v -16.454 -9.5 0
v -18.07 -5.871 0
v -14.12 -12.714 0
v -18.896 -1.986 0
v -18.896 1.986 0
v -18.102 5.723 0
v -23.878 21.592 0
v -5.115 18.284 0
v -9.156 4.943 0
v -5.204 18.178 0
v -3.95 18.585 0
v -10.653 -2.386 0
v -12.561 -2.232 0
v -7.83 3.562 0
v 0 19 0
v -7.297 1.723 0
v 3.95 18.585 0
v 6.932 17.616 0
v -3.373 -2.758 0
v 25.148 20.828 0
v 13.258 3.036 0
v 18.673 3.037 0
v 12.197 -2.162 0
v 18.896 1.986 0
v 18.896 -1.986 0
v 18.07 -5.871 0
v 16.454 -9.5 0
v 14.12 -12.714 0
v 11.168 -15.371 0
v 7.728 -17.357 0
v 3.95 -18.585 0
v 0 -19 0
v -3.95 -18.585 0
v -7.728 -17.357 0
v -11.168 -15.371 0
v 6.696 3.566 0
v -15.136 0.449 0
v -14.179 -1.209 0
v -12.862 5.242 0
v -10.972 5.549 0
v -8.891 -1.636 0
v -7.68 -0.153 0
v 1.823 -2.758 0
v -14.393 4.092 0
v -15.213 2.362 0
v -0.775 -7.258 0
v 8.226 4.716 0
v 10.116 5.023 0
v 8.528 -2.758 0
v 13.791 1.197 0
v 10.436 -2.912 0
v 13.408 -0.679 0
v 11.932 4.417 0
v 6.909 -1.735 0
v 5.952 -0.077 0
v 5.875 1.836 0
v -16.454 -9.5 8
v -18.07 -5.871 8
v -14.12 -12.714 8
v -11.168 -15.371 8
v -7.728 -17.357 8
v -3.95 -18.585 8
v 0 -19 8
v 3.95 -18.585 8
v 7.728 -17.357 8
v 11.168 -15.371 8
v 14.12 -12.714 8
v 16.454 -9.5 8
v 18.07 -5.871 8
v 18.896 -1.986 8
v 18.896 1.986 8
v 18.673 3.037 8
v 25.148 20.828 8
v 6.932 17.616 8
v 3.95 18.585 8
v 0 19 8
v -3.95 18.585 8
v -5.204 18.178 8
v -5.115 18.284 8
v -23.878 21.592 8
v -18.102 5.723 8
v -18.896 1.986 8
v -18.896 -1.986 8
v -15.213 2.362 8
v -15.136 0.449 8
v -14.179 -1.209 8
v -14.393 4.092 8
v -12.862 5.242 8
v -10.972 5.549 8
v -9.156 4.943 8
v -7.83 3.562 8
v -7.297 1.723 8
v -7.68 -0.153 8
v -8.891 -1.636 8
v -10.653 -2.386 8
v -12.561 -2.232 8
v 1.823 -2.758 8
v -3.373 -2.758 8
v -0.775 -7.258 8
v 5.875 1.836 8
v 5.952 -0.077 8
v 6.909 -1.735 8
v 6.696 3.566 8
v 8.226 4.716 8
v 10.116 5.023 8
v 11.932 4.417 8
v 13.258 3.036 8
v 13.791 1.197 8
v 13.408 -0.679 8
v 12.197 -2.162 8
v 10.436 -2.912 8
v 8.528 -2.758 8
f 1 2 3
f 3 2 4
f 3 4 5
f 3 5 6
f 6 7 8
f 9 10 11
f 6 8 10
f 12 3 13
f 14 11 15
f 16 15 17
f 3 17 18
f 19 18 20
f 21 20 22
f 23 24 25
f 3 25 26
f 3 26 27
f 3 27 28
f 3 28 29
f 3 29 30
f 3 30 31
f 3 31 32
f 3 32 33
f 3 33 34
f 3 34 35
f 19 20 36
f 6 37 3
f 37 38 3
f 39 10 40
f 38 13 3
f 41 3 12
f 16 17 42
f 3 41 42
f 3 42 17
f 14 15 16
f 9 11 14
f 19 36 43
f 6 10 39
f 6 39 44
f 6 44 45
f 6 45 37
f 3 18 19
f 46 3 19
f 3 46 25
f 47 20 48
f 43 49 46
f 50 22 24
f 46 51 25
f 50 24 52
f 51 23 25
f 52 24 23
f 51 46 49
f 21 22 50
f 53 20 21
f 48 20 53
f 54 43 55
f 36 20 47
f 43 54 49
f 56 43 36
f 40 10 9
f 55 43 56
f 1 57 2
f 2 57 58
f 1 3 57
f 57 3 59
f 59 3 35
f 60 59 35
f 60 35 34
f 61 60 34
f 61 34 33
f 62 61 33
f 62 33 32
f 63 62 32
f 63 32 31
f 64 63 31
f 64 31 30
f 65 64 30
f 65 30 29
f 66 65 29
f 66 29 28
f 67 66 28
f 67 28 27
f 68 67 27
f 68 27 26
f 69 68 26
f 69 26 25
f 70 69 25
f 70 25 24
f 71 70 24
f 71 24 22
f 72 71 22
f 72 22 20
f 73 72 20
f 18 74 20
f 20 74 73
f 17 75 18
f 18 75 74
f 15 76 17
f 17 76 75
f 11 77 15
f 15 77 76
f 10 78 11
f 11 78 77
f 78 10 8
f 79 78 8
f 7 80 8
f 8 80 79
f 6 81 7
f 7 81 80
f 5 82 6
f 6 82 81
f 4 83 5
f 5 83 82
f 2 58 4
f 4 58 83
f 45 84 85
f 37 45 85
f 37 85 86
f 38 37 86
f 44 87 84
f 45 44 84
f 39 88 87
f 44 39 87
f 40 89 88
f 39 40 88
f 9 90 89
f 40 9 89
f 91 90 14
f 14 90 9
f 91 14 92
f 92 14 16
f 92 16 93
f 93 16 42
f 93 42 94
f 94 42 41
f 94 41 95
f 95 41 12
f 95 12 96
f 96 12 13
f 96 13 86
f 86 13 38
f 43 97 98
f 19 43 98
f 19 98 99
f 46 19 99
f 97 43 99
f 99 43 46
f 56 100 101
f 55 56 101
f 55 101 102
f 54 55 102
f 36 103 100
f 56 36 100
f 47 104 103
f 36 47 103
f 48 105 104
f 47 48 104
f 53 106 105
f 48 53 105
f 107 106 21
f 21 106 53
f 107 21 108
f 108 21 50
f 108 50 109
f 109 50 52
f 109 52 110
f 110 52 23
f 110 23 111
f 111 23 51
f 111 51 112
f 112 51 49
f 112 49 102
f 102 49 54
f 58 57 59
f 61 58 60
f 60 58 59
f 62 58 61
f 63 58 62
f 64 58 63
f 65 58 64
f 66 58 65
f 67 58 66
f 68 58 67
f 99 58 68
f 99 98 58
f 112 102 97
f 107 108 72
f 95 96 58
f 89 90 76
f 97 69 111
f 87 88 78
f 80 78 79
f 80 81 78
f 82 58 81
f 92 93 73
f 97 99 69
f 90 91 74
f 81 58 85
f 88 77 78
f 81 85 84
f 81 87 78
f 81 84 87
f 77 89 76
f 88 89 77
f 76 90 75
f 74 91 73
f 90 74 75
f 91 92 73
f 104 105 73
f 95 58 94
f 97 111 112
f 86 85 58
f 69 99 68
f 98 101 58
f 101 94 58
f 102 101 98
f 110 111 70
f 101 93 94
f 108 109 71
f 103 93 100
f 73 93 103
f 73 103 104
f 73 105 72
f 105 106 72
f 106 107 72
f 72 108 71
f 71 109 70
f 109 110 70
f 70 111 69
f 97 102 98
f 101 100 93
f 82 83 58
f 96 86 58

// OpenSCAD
rotate([0, 0, 30]){
difference(){
	cylinder( h = 8, r = 19);
	translate([-9, 7, -1])
	cylinder( h = 10, r = 4);
	translate([9, -4, -1])
	cylinder( h = 10, r = 4);
	translate([-2.8, -3.3, 3])
	cylinder(h=12,r=3,$fn=3, 
	center=true);
}//end difference

//EARS
//module ear(){
translate([0, -2, 0]){
scale([1.1, 1.1, 1]){
rotate([0, 0, 10])
translate([20, 1.6, 4])
cylinder(h=8,r=10,$fn=3, center=true);

rotate([0, 0, -10])
translate([-9, 19, 4])
cylinder(h=8,r=10,$fn=3, center=true);
}//end scale
}//end translate
//}//end module

}//end rotate

//scale([.8, .8, .8])
//ear() 
